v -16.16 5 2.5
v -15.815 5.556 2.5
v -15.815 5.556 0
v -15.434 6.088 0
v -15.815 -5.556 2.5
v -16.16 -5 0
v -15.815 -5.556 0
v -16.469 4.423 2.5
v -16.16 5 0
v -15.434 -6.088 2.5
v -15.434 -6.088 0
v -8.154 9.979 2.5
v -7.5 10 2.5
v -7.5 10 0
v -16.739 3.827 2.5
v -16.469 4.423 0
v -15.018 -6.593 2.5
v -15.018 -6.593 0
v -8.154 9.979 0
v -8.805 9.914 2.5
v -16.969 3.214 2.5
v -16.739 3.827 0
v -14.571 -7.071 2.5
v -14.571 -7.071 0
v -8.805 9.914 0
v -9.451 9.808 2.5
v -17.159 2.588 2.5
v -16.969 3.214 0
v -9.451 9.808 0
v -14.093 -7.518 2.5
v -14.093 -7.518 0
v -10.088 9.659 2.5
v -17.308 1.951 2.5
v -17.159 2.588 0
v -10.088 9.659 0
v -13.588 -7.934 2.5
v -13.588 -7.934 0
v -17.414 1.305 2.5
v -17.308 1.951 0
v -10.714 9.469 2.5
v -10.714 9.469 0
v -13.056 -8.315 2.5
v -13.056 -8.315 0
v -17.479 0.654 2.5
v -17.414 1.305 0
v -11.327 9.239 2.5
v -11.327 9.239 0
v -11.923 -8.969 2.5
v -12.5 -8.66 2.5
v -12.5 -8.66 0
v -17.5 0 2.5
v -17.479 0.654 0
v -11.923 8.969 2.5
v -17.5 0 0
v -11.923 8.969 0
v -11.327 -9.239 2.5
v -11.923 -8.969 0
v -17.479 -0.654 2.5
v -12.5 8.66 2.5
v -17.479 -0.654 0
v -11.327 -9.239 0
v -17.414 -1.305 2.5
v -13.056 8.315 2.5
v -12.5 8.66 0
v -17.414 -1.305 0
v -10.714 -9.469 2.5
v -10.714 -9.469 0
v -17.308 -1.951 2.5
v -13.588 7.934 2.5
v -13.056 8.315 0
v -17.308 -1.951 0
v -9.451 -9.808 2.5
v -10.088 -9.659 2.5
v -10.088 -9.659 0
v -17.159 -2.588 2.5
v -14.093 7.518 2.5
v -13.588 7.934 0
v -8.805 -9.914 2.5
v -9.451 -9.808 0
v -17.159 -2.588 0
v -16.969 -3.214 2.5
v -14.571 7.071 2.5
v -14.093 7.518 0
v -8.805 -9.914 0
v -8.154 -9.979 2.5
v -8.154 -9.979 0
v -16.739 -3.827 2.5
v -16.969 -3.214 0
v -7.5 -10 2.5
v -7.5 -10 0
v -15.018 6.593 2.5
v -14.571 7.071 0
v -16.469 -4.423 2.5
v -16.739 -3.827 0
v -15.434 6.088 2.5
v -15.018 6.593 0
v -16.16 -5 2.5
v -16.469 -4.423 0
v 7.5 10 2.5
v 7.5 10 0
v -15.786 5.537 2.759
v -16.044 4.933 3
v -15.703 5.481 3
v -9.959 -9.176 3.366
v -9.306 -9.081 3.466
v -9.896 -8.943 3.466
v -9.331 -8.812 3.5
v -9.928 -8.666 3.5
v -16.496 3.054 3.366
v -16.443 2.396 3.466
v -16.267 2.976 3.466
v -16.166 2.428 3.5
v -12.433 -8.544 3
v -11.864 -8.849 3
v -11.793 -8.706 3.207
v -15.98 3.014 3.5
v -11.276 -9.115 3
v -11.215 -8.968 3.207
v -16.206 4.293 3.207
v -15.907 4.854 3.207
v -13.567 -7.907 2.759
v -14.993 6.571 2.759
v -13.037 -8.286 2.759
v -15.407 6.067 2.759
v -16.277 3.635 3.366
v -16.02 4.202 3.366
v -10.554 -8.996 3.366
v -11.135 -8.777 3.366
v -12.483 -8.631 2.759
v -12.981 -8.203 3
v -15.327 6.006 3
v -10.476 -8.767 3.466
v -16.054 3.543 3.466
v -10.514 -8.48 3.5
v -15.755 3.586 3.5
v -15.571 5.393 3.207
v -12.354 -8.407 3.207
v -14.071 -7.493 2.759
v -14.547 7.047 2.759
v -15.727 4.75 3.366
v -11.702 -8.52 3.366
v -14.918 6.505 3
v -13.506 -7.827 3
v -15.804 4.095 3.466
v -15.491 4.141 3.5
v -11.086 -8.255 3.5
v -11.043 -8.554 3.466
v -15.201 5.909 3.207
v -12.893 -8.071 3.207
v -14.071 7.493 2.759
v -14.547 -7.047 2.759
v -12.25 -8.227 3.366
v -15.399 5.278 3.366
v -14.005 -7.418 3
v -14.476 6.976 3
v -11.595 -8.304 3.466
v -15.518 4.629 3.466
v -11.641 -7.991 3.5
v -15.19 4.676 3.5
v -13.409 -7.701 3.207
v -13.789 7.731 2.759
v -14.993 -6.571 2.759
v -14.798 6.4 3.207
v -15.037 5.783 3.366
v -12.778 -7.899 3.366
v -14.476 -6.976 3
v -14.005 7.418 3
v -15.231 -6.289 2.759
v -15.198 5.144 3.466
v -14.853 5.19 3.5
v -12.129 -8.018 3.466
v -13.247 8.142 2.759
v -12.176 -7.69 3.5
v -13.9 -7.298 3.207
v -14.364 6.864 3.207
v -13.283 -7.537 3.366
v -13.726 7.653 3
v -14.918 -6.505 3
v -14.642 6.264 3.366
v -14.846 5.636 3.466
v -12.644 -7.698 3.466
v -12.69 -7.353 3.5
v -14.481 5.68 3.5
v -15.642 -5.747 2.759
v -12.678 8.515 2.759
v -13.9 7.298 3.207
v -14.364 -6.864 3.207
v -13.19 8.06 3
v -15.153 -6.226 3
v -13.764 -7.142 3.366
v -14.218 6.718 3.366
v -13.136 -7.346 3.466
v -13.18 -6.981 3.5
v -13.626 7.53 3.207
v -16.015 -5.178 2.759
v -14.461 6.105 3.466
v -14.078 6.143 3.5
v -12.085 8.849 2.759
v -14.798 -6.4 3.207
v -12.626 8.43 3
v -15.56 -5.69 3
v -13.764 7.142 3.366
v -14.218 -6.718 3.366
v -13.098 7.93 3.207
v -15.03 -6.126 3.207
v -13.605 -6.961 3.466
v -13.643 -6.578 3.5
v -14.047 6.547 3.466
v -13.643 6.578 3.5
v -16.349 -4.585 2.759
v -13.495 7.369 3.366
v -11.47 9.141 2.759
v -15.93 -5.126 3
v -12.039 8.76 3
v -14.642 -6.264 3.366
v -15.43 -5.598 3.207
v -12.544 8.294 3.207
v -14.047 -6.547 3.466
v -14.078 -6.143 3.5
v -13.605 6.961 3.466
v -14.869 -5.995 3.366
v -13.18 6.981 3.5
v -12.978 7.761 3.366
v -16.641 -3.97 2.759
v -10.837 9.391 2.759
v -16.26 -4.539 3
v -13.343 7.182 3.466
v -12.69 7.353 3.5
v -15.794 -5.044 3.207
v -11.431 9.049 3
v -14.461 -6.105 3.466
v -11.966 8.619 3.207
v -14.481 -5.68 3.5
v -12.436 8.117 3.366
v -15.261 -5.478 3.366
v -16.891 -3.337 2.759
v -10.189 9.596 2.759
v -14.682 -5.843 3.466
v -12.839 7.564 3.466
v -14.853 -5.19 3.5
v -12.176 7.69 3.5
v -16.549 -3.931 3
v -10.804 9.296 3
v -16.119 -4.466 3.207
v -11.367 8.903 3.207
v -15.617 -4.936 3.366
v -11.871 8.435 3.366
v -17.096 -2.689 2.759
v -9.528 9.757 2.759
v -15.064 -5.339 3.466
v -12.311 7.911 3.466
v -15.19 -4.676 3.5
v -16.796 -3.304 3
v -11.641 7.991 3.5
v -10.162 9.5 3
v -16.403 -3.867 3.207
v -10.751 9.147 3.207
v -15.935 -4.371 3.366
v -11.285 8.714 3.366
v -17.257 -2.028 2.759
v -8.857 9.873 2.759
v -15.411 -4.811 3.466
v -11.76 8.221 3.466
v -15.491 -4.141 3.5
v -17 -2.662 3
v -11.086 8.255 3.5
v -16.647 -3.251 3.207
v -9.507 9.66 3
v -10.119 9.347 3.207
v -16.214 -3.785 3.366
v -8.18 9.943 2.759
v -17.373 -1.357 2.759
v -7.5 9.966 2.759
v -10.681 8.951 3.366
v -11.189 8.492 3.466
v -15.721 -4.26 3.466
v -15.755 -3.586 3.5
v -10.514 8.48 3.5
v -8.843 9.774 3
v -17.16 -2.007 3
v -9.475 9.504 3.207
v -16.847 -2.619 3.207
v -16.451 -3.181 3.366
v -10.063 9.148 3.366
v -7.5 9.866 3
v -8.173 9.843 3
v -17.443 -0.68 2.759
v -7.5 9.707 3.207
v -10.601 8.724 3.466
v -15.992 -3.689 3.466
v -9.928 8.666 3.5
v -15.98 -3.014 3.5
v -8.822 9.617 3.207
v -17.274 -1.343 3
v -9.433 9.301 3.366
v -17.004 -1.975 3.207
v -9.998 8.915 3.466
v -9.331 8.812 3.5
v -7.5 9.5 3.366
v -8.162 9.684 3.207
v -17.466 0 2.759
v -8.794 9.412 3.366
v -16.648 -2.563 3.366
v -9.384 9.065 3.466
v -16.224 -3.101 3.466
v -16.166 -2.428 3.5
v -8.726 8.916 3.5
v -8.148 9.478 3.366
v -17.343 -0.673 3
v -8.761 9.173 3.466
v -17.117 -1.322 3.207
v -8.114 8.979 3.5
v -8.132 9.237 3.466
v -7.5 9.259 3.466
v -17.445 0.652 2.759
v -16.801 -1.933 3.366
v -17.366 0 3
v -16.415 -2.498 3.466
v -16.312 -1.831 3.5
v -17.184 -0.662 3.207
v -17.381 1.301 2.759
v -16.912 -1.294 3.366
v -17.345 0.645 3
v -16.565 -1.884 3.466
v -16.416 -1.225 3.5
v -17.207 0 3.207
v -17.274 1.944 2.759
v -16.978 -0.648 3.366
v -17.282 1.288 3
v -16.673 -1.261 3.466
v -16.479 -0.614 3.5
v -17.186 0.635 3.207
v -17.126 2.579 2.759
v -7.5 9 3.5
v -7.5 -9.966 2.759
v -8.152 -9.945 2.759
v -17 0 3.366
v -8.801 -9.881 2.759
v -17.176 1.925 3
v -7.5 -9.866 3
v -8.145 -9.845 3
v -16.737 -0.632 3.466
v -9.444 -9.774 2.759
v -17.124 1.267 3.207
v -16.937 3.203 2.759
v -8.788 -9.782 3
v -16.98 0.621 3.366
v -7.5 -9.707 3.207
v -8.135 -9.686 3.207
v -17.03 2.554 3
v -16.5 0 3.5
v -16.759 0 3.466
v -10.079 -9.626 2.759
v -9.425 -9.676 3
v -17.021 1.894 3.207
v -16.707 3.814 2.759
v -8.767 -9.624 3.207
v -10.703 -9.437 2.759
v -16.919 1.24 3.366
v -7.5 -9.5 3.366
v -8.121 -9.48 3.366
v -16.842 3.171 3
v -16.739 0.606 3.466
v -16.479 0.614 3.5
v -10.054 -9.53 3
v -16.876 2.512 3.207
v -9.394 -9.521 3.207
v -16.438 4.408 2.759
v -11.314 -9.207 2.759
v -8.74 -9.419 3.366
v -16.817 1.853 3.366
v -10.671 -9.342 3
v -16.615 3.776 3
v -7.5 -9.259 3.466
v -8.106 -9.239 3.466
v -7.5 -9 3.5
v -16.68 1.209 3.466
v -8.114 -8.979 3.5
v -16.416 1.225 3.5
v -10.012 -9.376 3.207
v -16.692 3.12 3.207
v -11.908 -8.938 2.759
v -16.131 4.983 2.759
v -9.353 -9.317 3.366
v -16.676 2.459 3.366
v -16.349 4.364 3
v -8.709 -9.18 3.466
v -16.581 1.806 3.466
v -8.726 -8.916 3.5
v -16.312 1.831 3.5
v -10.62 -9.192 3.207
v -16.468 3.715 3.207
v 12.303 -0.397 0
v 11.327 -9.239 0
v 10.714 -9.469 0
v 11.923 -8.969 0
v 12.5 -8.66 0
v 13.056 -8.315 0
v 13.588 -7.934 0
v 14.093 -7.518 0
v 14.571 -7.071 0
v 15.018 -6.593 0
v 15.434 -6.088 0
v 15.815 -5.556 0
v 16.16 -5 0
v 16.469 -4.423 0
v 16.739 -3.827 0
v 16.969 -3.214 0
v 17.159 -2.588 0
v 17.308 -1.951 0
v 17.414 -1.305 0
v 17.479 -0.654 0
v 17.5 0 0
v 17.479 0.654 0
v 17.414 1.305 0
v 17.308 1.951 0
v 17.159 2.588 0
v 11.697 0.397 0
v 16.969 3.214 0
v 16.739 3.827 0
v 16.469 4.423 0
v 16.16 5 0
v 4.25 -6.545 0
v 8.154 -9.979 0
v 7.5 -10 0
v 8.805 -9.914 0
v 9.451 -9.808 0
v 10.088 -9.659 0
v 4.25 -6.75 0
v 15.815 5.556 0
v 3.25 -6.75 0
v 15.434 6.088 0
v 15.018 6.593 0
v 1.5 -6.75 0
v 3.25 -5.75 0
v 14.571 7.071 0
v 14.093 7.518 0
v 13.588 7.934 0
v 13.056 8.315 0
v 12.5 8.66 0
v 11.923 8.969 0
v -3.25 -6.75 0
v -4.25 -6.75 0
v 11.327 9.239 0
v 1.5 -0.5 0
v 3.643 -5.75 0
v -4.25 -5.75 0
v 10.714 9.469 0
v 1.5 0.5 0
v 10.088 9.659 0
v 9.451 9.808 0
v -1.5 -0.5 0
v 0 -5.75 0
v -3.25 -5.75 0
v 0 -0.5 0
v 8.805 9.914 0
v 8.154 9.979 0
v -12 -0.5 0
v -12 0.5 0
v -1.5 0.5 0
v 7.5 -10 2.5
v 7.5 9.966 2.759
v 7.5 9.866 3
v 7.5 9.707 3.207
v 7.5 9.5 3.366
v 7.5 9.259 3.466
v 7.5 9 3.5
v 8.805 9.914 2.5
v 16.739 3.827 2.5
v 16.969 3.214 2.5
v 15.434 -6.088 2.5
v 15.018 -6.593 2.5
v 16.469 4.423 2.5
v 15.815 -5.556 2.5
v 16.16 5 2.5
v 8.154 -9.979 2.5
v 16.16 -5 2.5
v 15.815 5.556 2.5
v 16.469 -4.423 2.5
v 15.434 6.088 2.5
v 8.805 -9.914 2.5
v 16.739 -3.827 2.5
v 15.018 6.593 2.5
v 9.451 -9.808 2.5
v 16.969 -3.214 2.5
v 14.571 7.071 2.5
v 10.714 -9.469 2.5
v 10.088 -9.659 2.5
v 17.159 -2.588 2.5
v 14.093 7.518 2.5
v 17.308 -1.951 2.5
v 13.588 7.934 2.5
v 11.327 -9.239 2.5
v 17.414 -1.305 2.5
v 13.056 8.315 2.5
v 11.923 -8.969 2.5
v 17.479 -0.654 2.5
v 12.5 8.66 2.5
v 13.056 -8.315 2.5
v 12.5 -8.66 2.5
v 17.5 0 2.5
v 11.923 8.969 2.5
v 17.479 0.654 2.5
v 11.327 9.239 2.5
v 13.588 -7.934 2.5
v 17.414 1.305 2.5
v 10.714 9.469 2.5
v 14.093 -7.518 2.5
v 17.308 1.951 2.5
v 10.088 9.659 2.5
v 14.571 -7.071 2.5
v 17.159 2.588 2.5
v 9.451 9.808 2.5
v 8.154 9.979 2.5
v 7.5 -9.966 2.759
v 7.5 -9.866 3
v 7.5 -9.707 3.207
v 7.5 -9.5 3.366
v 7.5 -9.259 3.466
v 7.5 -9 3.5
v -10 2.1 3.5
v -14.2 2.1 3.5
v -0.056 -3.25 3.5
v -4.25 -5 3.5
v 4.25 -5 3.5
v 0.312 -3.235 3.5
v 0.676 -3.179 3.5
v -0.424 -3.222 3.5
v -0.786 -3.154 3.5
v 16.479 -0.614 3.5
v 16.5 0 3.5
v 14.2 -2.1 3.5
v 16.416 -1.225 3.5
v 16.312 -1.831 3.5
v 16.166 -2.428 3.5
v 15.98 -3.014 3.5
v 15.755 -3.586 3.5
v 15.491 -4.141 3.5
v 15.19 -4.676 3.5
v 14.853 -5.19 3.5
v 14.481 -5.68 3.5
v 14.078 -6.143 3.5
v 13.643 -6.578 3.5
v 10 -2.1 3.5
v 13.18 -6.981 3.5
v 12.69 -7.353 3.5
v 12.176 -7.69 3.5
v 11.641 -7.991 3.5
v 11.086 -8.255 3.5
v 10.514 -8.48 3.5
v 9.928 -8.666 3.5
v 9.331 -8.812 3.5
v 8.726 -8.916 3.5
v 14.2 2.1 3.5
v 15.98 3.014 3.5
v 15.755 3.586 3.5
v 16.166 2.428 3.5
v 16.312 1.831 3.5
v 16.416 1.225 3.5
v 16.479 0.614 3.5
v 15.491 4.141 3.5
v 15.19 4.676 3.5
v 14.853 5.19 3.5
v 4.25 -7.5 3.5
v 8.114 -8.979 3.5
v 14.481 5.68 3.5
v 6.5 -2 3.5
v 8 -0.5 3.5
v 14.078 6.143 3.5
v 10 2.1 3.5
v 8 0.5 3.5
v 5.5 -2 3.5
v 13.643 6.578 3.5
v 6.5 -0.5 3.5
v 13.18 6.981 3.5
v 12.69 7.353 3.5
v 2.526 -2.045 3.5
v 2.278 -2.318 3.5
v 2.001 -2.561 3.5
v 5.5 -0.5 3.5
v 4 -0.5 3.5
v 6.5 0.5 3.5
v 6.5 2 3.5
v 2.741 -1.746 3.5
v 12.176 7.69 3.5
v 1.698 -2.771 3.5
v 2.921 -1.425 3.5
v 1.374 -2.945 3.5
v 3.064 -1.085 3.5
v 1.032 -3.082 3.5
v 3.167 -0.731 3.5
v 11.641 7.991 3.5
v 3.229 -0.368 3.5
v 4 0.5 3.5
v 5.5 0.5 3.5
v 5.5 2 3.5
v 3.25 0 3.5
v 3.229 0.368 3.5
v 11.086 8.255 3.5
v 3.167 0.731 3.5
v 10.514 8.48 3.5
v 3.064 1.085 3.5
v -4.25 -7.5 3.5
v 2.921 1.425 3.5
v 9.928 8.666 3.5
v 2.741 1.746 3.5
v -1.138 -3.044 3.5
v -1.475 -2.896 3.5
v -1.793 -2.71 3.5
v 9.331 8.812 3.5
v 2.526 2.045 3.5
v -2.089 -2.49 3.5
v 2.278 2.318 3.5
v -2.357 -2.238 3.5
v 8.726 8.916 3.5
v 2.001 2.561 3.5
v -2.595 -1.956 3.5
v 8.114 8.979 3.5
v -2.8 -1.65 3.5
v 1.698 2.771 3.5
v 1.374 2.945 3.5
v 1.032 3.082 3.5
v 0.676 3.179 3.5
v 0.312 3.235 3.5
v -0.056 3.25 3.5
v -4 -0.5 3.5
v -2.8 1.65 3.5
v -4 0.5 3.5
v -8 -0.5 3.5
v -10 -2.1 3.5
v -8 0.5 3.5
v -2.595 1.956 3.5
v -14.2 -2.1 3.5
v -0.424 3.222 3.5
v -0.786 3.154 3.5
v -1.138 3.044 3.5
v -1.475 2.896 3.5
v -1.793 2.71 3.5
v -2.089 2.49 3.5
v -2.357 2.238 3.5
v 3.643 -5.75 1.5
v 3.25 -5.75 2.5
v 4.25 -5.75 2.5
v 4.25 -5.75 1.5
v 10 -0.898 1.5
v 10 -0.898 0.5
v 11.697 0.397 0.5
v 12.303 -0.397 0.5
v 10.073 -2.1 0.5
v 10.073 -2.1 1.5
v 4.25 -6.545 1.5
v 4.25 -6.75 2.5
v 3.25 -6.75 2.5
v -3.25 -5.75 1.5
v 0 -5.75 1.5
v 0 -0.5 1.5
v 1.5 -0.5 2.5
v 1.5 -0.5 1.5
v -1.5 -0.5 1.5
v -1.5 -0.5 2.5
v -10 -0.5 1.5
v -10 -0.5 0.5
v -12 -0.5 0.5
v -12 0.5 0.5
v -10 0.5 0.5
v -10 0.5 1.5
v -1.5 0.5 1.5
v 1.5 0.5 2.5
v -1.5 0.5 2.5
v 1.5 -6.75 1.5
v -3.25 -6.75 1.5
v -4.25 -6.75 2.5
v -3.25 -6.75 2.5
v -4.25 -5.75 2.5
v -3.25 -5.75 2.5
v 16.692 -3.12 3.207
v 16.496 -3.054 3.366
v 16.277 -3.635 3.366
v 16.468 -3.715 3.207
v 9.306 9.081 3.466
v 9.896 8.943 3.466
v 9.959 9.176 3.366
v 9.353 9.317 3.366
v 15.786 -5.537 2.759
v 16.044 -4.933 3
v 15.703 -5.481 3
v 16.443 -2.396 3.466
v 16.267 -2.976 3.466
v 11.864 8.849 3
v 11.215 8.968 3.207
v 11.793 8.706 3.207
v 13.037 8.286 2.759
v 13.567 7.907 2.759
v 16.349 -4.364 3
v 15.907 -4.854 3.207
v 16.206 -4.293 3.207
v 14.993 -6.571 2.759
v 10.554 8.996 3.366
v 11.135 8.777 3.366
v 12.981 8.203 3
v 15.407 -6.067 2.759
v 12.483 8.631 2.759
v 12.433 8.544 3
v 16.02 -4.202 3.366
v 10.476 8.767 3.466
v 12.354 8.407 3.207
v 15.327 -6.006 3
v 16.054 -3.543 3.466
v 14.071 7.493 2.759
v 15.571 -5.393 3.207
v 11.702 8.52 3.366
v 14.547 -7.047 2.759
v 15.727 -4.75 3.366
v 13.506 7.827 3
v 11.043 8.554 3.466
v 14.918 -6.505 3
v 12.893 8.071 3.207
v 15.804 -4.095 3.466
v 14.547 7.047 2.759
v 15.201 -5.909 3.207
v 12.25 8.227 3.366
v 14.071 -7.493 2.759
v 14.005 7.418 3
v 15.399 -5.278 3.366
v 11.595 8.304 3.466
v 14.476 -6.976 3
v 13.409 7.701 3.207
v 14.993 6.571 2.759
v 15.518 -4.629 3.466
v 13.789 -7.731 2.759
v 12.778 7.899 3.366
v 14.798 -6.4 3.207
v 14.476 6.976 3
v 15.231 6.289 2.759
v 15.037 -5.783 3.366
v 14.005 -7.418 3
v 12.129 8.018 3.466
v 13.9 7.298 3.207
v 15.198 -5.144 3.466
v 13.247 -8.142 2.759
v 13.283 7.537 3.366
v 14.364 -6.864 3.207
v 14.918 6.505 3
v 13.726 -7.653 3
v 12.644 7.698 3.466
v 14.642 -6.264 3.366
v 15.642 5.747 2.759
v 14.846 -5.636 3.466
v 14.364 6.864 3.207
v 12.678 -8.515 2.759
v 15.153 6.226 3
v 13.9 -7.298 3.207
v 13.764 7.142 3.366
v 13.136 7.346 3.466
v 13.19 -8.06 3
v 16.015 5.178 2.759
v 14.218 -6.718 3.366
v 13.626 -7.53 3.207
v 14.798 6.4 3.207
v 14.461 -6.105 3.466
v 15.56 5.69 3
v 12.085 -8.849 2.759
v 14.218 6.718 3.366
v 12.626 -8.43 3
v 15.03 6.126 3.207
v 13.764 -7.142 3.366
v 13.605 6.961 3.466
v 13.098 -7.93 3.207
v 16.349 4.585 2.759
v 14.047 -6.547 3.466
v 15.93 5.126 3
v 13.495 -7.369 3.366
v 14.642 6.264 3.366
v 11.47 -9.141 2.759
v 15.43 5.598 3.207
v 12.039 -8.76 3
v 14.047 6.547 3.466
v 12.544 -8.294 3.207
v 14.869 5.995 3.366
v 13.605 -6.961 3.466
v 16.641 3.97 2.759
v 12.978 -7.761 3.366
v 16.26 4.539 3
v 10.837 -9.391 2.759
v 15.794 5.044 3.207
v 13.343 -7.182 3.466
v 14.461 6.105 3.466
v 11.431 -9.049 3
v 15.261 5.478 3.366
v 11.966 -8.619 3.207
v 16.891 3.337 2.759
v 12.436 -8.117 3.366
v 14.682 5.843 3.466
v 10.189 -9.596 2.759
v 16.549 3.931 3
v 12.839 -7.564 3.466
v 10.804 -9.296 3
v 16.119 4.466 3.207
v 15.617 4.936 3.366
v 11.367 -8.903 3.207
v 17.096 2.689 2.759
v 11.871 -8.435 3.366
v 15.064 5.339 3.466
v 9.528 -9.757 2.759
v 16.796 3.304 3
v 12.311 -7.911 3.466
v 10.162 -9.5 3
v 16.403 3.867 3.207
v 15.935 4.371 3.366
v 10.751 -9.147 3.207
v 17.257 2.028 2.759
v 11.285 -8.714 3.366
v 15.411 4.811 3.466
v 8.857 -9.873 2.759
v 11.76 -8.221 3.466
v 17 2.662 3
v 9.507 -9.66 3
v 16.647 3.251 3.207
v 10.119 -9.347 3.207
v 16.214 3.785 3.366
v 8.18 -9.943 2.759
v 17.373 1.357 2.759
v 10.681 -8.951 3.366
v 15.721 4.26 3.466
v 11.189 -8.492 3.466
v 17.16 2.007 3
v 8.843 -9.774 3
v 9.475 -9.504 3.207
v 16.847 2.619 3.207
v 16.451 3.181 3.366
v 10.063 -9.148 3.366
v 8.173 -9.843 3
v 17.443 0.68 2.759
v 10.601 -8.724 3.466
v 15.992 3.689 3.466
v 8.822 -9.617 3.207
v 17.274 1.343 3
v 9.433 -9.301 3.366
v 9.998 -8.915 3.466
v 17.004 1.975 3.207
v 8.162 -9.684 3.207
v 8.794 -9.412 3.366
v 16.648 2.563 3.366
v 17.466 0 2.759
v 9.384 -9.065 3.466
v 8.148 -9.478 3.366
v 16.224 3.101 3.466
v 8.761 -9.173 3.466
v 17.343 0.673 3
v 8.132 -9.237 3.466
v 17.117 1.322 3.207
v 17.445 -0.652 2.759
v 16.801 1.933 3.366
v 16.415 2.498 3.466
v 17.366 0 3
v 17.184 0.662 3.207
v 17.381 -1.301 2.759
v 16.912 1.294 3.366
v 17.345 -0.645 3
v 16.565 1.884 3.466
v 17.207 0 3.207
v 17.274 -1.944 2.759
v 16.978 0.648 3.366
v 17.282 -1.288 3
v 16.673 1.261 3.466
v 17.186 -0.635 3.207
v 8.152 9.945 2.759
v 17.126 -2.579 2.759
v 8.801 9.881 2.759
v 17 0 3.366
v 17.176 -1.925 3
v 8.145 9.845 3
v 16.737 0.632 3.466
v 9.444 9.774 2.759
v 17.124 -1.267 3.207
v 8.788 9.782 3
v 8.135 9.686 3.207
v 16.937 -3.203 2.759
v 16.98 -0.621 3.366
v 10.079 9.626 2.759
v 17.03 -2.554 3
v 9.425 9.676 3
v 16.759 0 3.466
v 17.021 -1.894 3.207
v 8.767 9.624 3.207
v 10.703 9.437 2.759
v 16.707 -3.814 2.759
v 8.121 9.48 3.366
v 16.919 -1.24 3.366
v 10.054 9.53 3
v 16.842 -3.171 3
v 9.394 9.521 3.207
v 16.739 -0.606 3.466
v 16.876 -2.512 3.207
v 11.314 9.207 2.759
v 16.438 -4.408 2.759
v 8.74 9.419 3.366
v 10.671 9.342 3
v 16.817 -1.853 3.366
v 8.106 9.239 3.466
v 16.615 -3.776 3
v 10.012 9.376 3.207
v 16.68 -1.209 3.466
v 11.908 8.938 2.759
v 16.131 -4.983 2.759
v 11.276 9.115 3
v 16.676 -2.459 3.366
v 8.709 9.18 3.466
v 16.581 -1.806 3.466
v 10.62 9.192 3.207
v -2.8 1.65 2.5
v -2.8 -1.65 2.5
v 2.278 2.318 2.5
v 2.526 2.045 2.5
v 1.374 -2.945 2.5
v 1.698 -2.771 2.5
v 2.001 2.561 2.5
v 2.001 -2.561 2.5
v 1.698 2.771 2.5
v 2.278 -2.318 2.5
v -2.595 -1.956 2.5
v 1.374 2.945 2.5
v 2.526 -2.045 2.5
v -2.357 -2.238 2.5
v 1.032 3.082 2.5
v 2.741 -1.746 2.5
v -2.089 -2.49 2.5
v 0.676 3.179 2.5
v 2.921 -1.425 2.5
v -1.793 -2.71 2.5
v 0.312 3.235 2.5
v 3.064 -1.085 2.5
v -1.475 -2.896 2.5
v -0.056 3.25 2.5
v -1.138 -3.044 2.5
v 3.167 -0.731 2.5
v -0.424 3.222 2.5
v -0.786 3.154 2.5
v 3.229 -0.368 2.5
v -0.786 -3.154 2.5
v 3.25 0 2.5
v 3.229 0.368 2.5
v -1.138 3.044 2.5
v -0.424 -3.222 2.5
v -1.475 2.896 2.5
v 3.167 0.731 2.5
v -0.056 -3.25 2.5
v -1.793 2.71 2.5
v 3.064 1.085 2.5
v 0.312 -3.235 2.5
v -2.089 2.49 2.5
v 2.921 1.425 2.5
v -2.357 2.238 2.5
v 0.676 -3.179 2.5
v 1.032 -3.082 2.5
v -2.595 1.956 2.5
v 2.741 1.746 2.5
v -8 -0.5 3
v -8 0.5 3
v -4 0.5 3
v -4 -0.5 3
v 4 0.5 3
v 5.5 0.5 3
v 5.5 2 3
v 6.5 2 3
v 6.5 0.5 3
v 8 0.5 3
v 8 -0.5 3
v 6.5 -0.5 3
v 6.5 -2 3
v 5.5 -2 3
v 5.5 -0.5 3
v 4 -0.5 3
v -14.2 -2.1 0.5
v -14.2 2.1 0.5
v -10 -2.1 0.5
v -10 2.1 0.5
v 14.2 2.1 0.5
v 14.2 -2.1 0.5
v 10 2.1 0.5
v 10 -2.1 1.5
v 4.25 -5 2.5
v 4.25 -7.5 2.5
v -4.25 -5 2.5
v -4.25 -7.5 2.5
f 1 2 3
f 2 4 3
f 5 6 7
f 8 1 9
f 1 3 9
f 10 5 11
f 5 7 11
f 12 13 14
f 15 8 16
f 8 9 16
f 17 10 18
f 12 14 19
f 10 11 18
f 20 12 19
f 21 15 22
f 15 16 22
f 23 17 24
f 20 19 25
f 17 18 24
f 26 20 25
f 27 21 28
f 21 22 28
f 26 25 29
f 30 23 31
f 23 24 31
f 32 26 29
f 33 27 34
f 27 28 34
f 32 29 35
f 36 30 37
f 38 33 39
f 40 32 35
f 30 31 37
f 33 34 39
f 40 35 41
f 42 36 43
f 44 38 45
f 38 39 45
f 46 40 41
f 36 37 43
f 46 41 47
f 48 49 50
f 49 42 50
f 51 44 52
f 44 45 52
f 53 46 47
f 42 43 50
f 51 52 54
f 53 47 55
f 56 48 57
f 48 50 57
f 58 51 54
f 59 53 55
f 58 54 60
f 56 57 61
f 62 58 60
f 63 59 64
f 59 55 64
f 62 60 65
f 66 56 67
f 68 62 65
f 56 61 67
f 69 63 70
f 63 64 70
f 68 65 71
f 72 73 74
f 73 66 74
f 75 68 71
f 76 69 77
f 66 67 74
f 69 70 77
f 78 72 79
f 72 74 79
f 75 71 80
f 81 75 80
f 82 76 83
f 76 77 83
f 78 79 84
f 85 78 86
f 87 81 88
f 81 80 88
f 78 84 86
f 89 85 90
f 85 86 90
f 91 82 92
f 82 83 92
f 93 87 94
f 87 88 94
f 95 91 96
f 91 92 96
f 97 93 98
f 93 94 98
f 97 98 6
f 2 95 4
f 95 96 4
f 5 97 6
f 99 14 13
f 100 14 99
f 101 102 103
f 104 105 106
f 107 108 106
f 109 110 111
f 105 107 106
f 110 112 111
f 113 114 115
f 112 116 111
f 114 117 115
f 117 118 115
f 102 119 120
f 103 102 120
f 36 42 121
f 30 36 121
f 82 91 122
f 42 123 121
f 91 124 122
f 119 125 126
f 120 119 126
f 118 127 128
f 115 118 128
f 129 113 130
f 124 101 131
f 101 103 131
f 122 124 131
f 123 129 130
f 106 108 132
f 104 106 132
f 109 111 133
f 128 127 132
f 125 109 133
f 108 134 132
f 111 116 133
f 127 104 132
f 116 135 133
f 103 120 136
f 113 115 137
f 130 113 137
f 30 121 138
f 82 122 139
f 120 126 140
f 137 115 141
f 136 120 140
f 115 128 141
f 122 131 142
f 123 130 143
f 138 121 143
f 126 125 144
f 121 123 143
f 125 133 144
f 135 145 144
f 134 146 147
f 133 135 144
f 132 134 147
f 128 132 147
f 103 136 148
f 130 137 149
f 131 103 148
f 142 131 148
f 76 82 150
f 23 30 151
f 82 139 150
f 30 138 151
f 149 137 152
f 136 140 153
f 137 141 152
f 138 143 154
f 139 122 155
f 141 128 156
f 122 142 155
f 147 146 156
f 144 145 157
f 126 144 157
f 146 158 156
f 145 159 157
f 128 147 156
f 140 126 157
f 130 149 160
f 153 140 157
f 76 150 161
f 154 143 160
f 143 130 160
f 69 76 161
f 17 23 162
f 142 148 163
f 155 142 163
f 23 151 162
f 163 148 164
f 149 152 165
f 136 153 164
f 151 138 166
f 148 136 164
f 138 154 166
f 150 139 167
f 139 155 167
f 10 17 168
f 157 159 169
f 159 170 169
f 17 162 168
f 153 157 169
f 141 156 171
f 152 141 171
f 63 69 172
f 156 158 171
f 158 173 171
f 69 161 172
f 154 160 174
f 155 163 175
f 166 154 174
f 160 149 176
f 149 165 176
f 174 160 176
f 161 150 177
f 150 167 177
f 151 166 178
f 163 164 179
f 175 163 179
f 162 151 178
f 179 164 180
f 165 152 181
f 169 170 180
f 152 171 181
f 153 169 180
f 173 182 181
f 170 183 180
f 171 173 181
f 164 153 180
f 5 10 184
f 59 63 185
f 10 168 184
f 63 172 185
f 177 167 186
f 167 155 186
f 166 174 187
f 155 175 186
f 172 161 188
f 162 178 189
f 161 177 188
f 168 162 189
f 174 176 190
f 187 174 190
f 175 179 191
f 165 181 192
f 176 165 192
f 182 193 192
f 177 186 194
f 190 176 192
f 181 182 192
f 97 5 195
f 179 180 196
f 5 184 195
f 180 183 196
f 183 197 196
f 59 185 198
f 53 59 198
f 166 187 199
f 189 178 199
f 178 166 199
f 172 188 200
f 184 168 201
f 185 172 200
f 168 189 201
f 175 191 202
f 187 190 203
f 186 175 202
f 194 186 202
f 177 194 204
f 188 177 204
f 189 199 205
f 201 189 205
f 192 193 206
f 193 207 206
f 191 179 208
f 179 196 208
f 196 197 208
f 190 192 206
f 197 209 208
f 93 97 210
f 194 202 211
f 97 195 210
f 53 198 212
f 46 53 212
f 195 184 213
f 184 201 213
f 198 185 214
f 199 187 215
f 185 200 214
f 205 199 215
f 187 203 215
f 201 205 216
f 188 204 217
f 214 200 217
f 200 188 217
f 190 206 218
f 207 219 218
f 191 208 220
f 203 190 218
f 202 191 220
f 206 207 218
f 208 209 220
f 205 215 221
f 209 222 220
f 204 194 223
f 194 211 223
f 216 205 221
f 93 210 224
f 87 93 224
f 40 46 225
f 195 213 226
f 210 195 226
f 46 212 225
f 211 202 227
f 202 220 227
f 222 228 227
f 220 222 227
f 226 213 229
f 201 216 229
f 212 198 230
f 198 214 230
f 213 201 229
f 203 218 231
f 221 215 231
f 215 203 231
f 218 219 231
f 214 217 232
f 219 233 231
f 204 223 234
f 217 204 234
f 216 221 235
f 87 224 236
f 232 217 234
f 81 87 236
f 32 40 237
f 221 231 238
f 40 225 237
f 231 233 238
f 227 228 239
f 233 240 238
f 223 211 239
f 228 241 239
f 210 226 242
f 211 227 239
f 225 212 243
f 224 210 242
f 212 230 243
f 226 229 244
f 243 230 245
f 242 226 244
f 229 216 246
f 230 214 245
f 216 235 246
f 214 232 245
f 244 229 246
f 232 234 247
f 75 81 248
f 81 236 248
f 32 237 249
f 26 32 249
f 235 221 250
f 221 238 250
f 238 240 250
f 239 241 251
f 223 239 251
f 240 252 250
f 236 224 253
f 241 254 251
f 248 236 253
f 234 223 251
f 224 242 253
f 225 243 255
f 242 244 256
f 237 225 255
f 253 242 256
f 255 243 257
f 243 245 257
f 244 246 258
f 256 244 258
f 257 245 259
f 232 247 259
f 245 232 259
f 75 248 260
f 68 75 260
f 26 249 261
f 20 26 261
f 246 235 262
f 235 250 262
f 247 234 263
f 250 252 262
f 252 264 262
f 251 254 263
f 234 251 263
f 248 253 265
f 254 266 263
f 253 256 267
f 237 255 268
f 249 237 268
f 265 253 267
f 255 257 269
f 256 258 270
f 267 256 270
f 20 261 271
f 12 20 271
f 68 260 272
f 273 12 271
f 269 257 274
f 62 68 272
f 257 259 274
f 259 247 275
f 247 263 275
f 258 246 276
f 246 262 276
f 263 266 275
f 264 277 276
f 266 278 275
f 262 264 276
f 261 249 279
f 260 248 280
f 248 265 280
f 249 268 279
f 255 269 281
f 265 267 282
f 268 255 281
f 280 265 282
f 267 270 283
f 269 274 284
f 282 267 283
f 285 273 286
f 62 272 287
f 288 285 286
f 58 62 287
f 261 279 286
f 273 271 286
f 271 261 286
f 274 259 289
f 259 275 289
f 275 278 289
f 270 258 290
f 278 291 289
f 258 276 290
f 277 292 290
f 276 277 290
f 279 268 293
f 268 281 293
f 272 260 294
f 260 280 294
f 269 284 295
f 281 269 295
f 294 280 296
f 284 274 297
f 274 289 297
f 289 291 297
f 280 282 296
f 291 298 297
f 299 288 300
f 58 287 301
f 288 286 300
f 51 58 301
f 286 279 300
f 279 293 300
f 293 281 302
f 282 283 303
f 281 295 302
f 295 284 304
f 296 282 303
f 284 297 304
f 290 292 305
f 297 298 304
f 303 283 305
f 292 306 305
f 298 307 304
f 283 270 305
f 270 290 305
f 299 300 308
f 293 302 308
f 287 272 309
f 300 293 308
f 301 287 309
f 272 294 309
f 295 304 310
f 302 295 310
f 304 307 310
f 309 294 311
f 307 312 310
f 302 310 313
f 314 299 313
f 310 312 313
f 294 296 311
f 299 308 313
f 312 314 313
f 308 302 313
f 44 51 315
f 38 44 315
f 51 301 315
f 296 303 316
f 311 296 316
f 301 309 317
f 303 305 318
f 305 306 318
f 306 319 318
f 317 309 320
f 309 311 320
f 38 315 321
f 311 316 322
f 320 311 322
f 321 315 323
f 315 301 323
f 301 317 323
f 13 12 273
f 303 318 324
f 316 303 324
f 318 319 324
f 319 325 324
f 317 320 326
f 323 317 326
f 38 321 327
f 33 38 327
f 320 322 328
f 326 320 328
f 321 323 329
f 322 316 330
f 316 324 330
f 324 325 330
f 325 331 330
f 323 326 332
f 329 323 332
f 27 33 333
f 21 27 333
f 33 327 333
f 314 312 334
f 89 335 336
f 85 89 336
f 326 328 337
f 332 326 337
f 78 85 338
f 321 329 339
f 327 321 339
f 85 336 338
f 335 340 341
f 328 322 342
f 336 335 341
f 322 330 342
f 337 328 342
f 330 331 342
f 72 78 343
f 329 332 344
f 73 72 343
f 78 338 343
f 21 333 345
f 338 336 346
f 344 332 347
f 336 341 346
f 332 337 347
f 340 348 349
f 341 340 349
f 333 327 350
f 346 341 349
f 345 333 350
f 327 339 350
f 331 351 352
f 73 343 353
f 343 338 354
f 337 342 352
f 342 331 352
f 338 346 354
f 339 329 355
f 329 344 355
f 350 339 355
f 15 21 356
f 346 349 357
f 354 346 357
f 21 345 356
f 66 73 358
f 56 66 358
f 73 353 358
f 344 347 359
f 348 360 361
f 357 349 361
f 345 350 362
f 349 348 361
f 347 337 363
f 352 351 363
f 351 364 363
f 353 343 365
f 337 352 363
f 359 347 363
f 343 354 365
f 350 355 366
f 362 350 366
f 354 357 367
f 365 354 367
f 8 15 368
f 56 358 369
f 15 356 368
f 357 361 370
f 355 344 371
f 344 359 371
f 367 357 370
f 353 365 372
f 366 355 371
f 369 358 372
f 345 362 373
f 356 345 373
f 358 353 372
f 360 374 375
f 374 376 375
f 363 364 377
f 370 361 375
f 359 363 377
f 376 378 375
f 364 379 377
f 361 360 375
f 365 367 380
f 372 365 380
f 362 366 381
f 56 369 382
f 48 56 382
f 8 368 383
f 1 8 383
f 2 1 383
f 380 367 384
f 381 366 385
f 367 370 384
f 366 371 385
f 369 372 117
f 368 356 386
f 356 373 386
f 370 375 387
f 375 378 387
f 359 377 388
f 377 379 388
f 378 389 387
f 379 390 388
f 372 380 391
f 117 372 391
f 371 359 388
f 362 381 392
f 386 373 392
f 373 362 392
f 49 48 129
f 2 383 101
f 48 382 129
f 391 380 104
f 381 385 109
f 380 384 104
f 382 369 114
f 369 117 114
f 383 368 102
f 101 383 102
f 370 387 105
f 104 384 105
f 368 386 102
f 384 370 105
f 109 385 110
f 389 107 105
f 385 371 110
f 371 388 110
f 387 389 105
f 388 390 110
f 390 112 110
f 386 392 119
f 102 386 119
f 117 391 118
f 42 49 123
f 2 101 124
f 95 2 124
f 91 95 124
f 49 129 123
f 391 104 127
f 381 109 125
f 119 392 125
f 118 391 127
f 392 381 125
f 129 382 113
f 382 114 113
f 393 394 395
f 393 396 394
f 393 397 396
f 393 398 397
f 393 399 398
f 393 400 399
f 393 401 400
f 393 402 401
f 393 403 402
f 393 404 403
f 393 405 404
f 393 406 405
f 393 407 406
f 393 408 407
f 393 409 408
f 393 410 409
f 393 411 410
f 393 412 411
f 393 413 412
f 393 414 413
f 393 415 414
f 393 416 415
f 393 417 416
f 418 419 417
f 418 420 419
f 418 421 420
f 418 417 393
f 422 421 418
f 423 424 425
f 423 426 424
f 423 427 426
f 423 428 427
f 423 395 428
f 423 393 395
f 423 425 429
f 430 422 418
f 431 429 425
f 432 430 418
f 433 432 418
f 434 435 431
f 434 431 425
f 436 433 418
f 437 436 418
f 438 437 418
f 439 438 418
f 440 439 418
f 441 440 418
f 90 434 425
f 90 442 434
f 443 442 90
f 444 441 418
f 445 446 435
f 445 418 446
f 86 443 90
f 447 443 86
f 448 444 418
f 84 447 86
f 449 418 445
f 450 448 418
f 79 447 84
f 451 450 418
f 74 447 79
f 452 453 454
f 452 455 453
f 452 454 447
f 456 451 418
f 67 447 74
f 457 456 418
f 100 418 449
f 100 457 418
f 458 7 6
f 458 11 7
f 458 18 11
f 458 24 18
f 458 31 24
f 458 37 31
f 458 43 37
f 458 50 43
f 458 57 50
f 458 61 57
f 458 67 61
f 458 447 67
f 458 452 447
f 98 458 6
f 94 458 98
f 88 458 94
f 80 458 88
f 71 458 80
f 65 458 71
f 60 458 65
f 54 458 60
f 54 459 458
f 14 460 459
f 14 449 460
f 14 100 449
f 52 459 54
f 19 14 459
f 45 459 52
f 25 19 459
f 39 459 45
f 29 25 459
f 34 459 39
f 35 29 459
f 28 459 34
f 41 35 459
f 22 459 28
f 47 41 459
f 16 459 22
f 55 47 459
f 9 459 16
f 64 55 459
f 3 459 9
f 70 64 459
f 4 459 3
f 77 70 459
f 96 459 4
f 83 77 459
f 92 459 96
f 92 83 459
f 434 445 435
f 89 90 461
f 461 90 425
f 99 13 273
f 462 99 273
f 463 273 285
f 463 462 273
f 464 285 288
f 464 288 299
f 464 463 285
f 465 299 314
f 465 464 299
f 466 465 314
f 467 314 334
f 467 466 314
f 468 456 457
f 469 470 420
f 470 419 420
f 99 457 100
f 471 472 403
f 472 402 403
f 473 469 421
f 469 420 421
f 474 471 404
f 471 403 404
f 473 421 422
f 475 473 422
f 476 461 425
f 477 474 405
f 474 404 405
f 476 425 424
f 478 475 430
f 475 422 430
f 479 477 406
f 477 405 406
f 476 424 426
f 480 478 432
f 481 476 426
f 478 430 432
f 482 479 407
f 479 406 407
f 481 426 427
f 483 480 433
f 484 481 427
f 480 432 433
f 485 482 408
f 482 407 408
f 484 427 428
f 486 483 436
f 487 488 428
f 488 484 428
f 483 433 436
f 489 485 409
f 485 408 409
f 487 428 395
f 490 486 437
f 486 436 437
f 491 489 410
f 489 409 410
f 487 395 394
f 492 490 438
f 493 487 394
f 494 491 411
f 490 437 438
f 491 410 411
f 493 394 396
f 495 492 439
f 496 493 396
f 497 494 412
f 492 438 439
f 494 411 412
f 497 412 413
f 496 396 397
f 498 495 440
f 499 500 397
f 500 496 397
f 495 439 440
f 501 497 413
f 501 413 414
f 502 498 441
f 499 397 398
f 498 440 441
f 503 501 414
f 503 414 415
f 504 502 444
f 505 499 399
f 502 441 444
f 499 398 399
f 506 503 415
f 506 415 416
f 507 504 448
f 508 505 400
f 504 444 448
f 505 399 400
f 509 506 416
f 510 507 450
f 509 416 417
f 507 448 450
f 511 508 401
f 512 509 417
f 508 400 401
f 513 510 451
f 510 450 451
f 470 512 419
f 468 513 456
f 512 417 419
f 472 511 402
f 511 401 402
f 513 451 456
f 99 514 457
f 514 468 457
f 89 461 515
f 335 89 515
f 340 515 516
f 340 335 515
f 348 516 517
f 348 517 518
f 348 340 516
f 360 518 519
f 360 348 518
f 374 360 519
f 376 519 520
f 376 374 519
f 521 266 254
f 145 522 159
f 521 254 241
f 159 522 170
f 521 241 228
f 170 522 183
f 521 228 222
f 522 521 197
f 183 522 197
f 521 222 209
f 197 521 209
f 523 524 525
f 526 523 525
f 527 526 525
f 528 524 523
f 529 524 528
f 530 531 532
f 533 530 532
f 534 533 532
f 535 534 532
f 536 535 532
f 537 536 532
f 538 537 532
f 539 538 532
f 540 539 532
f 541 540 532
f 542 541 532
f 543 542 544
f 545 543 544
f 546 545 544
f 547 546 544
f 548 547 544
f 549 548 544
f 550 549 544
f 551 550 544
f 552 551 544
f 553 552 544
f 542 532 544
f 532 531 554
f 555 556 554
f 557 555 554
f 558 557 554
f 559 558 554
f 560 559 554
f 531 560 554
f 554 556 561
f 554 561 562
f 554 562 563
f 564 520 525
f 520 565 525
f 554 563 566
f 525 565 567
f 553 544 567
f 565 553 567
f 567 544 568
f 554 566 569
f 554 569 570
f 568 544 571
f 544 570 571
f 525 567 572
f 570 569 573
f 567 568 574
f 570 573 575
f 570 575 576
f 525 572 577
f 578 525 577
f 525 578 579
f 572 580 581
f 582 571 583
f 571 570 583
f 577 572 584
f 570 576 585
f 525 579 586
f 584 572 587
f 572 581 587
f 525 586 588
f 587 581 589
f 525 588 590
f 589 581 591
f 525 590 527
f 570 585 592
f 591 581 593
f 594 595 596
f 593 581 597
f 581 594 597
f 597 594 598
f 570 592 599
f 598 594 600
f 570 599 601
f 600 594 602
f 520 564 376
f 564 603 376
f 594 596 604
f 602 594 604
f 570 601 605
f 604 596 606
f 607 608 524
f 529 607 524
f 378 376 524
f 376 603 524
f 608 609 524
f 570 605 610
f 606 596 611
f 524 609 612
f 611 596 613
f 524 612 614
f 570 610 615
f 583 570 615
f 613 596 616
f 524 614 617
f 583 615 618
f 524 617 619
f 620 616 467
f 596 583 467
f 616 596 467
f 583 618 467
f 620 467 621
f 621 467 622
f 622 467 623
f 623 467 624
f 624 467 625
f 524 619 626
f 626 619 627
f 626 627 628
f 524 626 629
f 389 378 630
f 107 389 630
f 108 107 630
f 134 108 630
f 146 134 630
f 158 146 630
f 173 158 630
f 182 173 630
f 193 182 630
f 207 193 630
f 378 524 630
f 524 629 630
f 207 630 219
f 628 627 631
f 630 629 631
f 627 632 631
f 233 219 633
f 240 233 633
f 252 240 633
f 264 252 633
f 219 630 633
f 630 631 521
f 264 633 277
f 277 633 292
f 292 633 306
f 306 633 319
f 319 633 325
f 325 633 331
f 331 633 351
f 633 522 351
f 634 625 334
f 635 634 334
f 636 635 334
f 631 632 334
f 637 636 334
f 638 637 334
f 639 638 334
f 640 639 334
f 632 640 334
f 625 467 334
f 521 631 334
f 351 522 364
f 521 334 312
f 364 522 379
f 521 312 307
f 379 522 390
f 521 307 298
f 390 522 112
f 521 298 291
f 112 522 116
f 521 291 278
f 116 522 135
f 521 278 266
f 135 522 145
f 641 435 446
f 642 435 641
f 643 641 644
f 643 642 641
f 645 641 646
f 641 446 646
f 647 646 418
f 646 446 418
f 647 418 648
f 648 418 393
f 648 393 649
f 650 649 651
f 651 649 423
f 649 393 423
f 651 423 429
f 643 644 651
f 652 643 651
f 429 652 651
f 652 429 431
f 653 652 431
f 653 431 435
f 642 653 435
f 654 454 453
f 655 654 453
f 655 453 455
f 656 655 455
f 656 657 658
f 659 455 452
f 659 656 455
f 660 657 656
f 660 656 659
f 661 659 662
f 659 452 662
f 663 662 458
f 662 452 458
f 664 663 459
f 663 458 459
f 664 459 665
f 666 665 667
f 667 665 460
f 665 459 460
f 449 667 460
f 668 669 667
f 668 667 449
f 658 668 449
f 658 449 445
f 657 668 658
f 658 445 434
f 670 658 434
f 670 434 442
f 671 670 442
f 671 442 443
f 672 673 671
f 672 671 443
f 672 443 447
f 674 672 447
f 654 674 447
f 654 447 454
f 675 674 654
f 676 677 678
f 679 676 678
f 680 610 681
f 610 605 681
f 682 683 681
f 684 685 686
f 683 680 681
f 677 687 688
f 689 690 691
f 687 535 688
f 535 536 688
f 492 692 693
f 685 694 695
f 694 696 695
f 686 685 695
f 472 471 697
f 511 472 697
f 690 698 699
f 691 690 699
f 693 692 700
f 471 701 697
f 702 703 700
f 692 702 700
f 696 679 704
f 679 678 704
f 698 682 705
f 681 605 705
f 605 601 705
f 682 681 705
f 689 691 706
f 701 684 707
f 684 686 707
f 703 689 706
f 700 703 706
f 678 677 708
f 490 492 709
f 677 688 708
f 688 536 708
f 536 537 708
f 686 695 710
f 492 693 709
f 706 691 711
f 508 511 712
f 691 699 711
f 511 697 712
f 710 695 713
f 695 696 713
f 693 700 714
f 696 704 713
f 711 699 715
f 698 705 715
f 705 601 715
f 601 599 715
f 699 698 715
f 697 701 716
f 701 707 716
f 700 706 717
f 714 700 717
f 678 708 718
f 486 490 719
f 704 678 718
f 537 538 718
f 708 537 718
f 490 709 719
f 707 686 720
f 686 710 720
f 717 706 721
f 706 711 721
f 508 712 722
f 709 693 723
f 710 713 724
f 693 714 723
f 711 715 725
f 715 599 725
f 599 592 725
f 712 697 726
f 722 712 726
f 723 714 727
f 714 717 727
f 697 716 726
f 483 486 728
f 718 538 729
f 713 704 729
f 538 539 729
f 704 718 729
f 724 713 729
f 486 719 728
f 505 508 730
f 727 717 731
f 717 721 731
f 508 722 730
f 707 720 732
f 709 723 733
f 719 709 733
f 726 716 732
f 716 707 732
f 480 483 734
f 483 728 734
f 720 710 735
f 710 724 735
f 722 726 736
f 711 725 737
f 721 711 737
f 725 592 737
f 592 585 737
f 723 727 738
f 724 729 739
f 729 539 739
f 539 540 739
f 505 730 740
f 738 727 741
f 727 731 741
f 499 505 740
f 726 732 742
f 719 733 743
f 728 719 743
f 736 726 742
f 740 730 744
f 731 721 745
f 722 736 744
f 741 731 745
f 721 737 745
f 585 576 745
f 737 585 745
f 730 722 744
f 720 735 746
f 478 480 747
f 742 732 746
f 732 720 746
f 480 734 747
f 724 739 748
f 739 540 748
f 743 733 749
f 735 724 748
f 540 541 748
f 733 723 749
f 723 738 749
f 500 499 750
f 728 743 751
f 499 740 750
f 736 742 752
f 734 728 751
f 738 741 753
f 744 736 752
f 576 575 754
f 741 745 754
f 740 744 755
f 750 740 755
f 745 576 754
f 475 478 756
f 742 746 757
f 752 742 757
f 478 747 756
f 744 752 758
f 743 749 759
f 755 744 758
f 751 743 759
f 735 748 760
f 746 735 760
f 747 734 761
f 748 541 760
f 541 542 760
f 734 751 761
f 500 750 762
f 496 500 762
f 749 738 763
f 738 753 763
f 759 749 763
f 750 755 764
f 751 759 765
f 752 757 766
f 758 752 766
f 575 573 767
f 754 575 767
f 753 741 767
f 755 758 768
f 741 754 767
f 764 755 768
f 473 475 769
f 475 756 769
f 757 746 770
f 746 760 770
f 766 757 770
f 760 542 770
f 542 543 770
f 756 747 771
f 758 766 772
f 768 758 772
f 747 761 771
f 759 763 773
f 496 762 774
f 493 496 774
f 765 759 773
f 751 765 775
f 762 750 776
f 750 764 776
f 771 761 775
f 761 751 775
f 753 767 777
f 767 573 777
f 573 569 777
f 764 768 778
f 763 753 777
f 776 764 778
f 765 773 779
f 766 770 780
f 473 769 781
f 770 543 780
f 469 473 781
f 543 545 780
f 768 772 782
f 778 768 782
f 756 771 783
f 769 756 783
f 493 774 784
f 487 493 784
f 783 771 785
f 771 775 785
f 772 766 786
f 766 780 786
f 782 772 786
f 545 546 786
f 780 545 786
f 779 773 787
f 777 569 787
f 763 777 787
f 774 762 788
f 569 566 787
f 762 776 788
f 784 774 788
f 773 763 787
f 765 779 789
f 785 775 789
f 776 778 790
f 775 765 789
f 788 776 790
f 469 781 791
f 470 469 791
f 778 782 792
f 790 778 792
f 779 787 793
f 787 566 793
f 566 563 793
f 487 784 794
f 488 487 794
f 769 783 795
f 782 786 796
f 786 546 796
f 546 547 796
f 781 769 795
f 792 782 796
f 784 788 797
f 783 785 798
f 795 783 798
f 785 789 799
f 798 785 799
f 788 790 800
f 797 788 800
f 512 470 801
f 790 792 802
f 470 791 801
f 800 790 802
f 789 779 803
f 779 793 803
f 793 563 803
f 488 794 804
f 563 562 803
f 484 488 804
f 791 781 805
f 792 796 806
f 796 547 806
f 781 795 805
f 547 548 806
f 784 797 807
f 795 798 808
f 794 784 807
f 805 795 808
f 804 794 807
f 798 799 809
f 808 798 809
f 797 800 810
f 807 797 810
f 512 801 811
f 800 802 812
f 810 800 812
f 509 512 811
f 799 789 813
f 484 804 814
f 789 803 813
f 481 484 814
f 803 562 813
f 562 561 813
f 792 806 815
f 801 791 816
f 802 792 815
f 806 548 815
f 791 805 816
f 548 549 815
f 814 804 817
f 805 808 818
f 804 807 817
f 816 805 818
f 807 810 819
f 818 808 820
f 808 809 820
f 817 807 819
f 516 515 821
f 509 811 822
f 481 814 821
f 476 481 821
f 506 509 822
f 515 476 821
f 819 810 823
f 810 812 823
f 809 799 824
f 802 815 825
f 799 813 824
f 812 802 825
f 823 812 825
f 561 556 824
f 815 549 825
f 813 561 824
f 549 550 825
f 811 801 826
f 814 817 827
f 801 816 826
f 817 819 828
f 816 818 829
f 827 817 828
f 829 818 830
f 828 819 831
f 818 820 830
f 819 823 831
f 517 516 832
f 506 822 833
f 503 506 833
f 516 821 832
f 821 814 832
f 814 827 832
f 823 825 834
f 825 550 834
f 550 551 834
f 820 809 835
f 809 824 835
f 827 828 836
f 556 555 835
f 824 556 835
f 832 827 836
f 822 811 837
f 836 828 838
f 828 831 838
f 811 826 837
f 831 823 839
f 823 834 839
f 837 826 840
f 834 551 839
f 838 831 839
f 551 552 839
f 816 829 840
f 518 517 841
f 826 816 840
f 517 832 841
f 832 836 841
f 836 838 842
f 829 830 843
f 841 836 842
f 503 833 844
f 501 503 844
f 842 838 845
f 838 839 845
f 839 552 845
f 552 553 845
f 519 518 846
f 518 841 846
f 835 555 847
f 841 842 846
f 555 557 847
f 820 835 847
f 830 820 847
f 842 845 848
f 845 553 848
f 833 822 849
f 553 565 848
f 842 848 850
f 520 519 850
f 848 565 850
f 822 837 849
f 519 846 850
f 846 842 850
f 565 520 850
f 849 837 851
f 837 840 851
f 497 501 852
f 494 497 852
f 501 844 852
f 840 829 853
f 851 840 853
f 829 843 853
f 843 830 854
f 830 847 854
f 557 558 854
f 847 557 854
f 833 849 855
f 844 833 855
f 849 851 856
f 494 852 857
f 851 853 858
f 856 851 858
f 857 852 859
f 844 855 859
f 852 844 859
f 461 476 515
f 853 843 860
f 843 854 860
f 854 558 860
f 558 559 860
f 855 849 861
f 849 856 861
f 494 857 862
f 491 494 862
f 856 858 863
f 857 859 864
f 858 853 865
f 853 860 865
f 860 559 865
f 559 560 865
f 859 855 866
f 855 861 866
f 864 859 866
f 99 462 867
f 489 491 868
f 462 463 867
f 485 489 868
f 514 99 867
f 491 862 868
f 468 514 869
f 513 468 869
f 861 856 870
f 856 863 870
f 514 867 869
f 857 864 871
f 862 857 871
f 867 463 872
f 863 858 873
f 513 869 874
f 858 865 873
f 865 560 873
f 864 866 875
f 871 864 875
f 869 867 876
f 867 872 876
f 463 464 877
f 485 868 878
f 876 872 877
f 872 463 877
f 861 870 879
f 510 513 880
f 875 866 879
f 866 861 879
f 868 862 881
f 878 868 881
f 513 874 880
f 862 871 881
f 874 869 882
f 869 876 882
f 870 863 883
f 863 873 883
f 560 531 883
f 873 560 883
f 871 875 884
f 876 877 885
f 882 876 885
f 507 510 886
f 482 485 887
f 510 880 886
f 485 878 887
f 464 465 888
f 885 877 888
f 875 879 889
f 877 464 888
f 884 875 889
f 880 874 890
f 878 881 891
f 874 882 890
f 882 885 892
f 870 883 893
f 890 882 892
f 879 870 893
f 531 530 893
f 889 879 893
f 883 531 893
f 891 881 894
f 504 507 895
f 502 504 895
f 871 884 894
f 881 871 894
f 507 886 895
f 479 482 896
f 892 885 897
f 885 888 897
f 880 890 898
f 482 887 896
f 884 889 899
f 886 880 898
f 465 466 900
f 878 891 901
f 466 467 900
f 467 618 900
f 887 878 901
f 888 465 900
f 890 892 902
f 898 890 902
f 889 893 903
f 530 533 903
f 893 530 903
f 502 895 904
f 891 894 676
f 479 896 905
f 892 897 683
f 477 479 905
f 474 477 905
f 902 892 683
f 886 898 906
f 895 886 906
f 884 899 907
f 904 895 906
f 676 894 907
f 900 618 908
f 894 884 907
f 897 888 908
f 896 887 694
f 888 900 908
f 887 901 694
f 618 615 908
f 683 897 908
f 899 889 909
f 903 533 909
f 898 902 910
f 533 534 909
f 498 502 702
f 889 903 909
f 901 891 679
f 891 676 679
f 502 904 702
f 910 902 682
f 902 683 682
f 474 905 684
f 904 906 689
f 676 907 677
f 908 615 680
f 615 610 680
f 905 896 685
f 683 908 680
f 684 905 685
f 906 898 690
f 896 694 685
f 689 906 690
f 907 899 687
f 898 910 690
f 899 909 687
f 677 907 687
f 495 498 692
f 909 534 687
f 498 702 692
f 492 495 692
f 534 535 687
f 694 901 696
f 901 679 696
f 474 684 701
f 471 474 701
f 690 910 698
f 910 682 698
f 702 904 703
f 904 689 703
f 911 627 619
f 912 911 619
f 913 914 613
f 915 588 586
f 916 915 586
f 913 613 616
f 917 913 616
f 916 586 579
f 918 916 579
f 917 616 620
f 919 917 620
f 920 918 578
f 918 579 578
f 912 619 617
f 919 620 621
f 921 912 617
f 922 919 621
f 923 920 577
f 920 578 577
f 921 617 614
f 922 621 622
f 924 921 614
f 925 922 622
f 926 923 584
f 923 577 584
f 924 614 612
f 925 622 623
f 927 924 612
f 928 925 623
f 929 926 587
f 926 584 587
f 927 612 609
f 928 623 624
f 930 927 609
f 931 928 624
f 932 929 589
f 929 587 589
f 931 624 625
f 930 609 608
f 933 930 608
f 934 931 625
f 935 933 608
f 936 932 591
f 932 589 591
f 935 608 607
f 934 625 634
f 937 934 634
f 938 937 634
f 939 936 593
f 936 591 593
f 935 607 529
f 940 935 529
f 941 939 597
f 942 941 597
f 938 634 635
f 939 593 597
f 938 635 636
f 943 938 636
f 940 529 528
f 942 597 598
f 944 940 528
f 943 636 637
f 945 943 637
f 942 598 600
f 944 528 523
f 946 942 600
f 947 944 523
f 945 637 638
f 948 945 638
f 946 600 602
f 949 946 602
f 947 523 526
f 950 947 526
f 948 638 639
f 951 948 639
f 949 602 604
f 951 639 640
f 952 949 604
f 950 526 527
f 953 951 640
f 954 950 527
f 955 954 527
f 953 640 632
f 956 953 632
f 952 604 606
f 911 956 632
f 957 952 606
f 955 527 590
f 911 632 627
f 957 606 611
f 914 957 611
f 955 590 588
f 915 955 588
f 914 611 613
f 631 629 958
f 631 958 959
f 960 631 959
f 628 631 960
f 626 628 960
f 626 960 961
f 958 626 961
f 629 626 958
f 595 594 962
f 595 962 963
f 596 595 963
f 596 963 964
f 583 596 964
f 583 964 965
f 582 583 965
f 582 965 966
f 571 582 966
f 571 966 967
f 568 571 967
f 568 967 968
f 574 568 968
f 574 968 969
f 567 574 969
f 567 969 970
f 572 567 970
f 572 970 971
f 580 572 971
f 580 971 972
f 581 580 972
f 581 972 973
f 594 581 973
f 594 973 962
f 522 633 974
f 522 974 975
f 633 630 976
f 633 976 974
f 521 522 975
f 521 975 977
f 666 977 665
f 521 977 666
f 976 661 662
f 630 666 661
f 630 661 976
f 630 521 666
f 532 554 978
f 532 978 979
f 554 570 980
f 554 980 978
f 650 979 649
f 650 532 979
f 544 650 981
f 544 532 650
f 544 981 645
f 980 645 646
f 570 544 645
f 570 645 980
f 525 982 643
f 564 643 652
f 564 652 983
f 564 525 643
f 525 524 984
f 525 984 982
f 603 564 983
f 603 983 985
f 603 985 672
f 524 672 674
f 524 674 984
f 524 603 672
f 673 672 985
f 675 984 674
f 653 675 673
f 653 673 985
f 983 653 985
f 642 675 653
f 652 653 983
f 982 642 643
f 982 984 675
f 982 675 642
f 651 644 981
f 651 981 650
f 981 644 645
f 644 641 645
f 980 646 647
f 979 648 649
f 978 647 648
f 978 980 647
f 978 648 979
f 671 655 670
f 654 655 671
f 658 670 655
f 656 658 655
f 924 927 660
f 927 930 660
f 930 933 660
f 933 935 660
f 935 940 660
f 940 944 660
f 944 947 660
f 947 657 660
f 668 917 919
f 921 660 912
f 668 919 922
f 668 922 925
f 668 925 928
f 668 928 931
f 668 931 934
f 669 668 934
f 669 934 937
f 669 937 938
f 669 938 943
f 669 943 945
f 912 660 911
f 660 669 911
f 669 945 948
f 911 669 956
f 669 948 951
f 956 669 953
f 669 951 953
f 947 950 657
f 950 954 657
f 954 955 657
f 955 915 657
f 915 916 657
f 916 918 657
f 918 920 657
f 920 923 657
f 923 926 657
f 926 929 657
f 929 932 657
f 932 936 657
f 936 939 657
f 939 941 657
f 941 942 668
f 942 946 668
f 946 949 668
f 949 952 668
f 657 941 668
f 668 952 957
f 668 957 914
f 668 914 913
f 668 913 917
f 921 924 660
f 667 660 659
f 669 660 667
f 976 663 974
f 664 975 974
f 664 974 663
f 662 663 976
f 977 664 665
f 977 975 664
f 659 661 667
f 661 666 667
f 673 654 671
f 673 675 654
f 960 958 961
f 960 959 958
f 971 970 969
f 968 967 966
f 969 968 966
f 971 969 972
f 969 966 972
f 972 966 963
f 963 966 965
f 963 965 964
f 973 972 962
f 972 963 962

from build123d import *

# Parameters (mm, degrees)
PAD_DEPTH       = 3.5
FILLET_R        = 1
POCKET_DEPTH    = 1
SKETCH007_W     = 3
SKETCH007_H     = 1
POCKET001_DEPTH = 2.501
SKETCH008_W     = 8.5
SKETCH008_H     = 2.5
POCKET002_DEPTH = 1
SKETCH009_W     = 1
SKETCH009_H     = 1
POCKET003_DEPTH = 5
SKETCH010_W     = 10.5
SKETCH010_H     = 1
POCKET004_DEPTH = 1.5
SKETCH001_W     = 4.2
SKETCH001_H     = 4.2
POCKET005_DEPTH = 3
SKETCH006_W     = 4
SKETCH006_H     = 1
POCKET006_DEPTH = 0.5


with BuildPart() as part:
    # Sketch → Pad (new body)
    with BuildSketch(Plane.XY):
        with BuildLine():
            ThreePointArc((-7.5, 10), (-17.5, 0), (-7.5, -10))
            Line((-7.5, -10), (7.5, -10))
            ThreePointArc((7.5, -10), (17.5, 0), (7.5, 10))
            Line((-7.5, 10), (7.5, 10))
        make_face()
    extrude(amount=PAD_DEPTH)

    # Fillet
    fillet_edges = [part.edges().sort_by_distance(p)[0] for p in [
        (0, 10, 3.5),
        (0, -10, 3.5),
        (17.5, 0, 3.5),
        (-17.5, 0, 3.5),
    ]]
    fillet(fillet_edges, radius=FILLET_R)

    # Sketch003 → Pocket (cut)
    with BuildSketch(Plane.XY.offset(3.5)):
        with BuildLine():
            ThreePointArc((-2.8, -1.65), (3.25, 0), (-2.8, 1.65))
            Line((-2.8, 1.65), (-2.8, -1.65))
        make_face()
    extrude(amount=-POCKET_DEPTH, mode=Mode.SUBTRACT)

    # Sketch007 → Pocket001 (cut, through all)
    with BuildSketch(Plane.XY.offset(2.5)):
        Rectangle(SKETCH007_W, SKETCH007_H)
    extrude(amount=-POCKET001_DEPTH, mode=Mode.SUBTRACT)

    # Sketch008 → Pocket002 (cut)
    with BuildSketch(Plane.XY.offset(3.5)):
        with Locations((0, -6.25)):
            Rectangle(SKETCH008_W, SKETCH008_H)
    extrude(amount=-POCKET002_DEPTH, mode=Mode.SUBTRACT)

    # Sketch009 → Pocket003 (cut)
    with BuildSketch(Plane.XY.offset(2.5)):
        with Locations((-3.75, -6.25)):
            Rectangle(SKETCH009_W, SKETCH009_H)
        with Locations((3.75, -6.25)):
            Rectangle(SKETCH009_W, SKETCH009_H)
    extrude(amount=-POCKET003_DEPTH, mode=Mode.SUBTRACT)

    # Sketch010 → Pocket004 (cut)
    with BuildSketch(Plane(origin=(0, 0, 0), x_dir=(1, 0, 0), z_dir=(0, 0, -1))):
        Polygon((3.643237, 5.75), (11.696618, -0.397441), (12.303382, 0.397441), (4.25, 6.544883), align=None)
        with Locations((-6.75, 0)):
            Rectangle(SKETCH010_W, SKETCH010_H)
        Polygon((-3.25, 5.75), (0, 5.75), (0, 0.5), (1.5, 0.5), (1.5, 6.75), (-3.25, 6.75), align=None)
    extrude(amount=-POCKET004_DEPTH, mode=Mode.SUBTRACT)

    # Sketch001 → Pocket005 (cut)
    with BuildSketch(Plane.XY.offset(3.5)):
        with Locations((-12.1, 0)):
            Rectangle(SKETCH001_W, SKETCH001_H)
        with Locations((12.1, 0)):
            Rectangle(SKETCH001_W, SKETCH001_H)
    extrude(amount=-POCKET005_DEPTH, mode=Mode.SUBTRACT)

    # Sketch006 → Pocket006 (cut)
    with BuildSketch(Plane.XY.offset(3.5)):
        with Locations((-6, 0)):
            Rectangle(SKETCH006_W, SKETCH006_H)
        Polygon((4, 0.5), (5.5, 0.5), (5.5, 2), (6.5, 2), (6.5, 0.5), (8, 0.5), (8, -0.5), (6.5, -0.5), (6.5, -2), (5.5, -2), (5.5, -0.5), (4, -0.5), align=None)
    extrude(amount=-POCKET006_DEPTH, mode=Mode.SUBTRACT)


solid = part.part
